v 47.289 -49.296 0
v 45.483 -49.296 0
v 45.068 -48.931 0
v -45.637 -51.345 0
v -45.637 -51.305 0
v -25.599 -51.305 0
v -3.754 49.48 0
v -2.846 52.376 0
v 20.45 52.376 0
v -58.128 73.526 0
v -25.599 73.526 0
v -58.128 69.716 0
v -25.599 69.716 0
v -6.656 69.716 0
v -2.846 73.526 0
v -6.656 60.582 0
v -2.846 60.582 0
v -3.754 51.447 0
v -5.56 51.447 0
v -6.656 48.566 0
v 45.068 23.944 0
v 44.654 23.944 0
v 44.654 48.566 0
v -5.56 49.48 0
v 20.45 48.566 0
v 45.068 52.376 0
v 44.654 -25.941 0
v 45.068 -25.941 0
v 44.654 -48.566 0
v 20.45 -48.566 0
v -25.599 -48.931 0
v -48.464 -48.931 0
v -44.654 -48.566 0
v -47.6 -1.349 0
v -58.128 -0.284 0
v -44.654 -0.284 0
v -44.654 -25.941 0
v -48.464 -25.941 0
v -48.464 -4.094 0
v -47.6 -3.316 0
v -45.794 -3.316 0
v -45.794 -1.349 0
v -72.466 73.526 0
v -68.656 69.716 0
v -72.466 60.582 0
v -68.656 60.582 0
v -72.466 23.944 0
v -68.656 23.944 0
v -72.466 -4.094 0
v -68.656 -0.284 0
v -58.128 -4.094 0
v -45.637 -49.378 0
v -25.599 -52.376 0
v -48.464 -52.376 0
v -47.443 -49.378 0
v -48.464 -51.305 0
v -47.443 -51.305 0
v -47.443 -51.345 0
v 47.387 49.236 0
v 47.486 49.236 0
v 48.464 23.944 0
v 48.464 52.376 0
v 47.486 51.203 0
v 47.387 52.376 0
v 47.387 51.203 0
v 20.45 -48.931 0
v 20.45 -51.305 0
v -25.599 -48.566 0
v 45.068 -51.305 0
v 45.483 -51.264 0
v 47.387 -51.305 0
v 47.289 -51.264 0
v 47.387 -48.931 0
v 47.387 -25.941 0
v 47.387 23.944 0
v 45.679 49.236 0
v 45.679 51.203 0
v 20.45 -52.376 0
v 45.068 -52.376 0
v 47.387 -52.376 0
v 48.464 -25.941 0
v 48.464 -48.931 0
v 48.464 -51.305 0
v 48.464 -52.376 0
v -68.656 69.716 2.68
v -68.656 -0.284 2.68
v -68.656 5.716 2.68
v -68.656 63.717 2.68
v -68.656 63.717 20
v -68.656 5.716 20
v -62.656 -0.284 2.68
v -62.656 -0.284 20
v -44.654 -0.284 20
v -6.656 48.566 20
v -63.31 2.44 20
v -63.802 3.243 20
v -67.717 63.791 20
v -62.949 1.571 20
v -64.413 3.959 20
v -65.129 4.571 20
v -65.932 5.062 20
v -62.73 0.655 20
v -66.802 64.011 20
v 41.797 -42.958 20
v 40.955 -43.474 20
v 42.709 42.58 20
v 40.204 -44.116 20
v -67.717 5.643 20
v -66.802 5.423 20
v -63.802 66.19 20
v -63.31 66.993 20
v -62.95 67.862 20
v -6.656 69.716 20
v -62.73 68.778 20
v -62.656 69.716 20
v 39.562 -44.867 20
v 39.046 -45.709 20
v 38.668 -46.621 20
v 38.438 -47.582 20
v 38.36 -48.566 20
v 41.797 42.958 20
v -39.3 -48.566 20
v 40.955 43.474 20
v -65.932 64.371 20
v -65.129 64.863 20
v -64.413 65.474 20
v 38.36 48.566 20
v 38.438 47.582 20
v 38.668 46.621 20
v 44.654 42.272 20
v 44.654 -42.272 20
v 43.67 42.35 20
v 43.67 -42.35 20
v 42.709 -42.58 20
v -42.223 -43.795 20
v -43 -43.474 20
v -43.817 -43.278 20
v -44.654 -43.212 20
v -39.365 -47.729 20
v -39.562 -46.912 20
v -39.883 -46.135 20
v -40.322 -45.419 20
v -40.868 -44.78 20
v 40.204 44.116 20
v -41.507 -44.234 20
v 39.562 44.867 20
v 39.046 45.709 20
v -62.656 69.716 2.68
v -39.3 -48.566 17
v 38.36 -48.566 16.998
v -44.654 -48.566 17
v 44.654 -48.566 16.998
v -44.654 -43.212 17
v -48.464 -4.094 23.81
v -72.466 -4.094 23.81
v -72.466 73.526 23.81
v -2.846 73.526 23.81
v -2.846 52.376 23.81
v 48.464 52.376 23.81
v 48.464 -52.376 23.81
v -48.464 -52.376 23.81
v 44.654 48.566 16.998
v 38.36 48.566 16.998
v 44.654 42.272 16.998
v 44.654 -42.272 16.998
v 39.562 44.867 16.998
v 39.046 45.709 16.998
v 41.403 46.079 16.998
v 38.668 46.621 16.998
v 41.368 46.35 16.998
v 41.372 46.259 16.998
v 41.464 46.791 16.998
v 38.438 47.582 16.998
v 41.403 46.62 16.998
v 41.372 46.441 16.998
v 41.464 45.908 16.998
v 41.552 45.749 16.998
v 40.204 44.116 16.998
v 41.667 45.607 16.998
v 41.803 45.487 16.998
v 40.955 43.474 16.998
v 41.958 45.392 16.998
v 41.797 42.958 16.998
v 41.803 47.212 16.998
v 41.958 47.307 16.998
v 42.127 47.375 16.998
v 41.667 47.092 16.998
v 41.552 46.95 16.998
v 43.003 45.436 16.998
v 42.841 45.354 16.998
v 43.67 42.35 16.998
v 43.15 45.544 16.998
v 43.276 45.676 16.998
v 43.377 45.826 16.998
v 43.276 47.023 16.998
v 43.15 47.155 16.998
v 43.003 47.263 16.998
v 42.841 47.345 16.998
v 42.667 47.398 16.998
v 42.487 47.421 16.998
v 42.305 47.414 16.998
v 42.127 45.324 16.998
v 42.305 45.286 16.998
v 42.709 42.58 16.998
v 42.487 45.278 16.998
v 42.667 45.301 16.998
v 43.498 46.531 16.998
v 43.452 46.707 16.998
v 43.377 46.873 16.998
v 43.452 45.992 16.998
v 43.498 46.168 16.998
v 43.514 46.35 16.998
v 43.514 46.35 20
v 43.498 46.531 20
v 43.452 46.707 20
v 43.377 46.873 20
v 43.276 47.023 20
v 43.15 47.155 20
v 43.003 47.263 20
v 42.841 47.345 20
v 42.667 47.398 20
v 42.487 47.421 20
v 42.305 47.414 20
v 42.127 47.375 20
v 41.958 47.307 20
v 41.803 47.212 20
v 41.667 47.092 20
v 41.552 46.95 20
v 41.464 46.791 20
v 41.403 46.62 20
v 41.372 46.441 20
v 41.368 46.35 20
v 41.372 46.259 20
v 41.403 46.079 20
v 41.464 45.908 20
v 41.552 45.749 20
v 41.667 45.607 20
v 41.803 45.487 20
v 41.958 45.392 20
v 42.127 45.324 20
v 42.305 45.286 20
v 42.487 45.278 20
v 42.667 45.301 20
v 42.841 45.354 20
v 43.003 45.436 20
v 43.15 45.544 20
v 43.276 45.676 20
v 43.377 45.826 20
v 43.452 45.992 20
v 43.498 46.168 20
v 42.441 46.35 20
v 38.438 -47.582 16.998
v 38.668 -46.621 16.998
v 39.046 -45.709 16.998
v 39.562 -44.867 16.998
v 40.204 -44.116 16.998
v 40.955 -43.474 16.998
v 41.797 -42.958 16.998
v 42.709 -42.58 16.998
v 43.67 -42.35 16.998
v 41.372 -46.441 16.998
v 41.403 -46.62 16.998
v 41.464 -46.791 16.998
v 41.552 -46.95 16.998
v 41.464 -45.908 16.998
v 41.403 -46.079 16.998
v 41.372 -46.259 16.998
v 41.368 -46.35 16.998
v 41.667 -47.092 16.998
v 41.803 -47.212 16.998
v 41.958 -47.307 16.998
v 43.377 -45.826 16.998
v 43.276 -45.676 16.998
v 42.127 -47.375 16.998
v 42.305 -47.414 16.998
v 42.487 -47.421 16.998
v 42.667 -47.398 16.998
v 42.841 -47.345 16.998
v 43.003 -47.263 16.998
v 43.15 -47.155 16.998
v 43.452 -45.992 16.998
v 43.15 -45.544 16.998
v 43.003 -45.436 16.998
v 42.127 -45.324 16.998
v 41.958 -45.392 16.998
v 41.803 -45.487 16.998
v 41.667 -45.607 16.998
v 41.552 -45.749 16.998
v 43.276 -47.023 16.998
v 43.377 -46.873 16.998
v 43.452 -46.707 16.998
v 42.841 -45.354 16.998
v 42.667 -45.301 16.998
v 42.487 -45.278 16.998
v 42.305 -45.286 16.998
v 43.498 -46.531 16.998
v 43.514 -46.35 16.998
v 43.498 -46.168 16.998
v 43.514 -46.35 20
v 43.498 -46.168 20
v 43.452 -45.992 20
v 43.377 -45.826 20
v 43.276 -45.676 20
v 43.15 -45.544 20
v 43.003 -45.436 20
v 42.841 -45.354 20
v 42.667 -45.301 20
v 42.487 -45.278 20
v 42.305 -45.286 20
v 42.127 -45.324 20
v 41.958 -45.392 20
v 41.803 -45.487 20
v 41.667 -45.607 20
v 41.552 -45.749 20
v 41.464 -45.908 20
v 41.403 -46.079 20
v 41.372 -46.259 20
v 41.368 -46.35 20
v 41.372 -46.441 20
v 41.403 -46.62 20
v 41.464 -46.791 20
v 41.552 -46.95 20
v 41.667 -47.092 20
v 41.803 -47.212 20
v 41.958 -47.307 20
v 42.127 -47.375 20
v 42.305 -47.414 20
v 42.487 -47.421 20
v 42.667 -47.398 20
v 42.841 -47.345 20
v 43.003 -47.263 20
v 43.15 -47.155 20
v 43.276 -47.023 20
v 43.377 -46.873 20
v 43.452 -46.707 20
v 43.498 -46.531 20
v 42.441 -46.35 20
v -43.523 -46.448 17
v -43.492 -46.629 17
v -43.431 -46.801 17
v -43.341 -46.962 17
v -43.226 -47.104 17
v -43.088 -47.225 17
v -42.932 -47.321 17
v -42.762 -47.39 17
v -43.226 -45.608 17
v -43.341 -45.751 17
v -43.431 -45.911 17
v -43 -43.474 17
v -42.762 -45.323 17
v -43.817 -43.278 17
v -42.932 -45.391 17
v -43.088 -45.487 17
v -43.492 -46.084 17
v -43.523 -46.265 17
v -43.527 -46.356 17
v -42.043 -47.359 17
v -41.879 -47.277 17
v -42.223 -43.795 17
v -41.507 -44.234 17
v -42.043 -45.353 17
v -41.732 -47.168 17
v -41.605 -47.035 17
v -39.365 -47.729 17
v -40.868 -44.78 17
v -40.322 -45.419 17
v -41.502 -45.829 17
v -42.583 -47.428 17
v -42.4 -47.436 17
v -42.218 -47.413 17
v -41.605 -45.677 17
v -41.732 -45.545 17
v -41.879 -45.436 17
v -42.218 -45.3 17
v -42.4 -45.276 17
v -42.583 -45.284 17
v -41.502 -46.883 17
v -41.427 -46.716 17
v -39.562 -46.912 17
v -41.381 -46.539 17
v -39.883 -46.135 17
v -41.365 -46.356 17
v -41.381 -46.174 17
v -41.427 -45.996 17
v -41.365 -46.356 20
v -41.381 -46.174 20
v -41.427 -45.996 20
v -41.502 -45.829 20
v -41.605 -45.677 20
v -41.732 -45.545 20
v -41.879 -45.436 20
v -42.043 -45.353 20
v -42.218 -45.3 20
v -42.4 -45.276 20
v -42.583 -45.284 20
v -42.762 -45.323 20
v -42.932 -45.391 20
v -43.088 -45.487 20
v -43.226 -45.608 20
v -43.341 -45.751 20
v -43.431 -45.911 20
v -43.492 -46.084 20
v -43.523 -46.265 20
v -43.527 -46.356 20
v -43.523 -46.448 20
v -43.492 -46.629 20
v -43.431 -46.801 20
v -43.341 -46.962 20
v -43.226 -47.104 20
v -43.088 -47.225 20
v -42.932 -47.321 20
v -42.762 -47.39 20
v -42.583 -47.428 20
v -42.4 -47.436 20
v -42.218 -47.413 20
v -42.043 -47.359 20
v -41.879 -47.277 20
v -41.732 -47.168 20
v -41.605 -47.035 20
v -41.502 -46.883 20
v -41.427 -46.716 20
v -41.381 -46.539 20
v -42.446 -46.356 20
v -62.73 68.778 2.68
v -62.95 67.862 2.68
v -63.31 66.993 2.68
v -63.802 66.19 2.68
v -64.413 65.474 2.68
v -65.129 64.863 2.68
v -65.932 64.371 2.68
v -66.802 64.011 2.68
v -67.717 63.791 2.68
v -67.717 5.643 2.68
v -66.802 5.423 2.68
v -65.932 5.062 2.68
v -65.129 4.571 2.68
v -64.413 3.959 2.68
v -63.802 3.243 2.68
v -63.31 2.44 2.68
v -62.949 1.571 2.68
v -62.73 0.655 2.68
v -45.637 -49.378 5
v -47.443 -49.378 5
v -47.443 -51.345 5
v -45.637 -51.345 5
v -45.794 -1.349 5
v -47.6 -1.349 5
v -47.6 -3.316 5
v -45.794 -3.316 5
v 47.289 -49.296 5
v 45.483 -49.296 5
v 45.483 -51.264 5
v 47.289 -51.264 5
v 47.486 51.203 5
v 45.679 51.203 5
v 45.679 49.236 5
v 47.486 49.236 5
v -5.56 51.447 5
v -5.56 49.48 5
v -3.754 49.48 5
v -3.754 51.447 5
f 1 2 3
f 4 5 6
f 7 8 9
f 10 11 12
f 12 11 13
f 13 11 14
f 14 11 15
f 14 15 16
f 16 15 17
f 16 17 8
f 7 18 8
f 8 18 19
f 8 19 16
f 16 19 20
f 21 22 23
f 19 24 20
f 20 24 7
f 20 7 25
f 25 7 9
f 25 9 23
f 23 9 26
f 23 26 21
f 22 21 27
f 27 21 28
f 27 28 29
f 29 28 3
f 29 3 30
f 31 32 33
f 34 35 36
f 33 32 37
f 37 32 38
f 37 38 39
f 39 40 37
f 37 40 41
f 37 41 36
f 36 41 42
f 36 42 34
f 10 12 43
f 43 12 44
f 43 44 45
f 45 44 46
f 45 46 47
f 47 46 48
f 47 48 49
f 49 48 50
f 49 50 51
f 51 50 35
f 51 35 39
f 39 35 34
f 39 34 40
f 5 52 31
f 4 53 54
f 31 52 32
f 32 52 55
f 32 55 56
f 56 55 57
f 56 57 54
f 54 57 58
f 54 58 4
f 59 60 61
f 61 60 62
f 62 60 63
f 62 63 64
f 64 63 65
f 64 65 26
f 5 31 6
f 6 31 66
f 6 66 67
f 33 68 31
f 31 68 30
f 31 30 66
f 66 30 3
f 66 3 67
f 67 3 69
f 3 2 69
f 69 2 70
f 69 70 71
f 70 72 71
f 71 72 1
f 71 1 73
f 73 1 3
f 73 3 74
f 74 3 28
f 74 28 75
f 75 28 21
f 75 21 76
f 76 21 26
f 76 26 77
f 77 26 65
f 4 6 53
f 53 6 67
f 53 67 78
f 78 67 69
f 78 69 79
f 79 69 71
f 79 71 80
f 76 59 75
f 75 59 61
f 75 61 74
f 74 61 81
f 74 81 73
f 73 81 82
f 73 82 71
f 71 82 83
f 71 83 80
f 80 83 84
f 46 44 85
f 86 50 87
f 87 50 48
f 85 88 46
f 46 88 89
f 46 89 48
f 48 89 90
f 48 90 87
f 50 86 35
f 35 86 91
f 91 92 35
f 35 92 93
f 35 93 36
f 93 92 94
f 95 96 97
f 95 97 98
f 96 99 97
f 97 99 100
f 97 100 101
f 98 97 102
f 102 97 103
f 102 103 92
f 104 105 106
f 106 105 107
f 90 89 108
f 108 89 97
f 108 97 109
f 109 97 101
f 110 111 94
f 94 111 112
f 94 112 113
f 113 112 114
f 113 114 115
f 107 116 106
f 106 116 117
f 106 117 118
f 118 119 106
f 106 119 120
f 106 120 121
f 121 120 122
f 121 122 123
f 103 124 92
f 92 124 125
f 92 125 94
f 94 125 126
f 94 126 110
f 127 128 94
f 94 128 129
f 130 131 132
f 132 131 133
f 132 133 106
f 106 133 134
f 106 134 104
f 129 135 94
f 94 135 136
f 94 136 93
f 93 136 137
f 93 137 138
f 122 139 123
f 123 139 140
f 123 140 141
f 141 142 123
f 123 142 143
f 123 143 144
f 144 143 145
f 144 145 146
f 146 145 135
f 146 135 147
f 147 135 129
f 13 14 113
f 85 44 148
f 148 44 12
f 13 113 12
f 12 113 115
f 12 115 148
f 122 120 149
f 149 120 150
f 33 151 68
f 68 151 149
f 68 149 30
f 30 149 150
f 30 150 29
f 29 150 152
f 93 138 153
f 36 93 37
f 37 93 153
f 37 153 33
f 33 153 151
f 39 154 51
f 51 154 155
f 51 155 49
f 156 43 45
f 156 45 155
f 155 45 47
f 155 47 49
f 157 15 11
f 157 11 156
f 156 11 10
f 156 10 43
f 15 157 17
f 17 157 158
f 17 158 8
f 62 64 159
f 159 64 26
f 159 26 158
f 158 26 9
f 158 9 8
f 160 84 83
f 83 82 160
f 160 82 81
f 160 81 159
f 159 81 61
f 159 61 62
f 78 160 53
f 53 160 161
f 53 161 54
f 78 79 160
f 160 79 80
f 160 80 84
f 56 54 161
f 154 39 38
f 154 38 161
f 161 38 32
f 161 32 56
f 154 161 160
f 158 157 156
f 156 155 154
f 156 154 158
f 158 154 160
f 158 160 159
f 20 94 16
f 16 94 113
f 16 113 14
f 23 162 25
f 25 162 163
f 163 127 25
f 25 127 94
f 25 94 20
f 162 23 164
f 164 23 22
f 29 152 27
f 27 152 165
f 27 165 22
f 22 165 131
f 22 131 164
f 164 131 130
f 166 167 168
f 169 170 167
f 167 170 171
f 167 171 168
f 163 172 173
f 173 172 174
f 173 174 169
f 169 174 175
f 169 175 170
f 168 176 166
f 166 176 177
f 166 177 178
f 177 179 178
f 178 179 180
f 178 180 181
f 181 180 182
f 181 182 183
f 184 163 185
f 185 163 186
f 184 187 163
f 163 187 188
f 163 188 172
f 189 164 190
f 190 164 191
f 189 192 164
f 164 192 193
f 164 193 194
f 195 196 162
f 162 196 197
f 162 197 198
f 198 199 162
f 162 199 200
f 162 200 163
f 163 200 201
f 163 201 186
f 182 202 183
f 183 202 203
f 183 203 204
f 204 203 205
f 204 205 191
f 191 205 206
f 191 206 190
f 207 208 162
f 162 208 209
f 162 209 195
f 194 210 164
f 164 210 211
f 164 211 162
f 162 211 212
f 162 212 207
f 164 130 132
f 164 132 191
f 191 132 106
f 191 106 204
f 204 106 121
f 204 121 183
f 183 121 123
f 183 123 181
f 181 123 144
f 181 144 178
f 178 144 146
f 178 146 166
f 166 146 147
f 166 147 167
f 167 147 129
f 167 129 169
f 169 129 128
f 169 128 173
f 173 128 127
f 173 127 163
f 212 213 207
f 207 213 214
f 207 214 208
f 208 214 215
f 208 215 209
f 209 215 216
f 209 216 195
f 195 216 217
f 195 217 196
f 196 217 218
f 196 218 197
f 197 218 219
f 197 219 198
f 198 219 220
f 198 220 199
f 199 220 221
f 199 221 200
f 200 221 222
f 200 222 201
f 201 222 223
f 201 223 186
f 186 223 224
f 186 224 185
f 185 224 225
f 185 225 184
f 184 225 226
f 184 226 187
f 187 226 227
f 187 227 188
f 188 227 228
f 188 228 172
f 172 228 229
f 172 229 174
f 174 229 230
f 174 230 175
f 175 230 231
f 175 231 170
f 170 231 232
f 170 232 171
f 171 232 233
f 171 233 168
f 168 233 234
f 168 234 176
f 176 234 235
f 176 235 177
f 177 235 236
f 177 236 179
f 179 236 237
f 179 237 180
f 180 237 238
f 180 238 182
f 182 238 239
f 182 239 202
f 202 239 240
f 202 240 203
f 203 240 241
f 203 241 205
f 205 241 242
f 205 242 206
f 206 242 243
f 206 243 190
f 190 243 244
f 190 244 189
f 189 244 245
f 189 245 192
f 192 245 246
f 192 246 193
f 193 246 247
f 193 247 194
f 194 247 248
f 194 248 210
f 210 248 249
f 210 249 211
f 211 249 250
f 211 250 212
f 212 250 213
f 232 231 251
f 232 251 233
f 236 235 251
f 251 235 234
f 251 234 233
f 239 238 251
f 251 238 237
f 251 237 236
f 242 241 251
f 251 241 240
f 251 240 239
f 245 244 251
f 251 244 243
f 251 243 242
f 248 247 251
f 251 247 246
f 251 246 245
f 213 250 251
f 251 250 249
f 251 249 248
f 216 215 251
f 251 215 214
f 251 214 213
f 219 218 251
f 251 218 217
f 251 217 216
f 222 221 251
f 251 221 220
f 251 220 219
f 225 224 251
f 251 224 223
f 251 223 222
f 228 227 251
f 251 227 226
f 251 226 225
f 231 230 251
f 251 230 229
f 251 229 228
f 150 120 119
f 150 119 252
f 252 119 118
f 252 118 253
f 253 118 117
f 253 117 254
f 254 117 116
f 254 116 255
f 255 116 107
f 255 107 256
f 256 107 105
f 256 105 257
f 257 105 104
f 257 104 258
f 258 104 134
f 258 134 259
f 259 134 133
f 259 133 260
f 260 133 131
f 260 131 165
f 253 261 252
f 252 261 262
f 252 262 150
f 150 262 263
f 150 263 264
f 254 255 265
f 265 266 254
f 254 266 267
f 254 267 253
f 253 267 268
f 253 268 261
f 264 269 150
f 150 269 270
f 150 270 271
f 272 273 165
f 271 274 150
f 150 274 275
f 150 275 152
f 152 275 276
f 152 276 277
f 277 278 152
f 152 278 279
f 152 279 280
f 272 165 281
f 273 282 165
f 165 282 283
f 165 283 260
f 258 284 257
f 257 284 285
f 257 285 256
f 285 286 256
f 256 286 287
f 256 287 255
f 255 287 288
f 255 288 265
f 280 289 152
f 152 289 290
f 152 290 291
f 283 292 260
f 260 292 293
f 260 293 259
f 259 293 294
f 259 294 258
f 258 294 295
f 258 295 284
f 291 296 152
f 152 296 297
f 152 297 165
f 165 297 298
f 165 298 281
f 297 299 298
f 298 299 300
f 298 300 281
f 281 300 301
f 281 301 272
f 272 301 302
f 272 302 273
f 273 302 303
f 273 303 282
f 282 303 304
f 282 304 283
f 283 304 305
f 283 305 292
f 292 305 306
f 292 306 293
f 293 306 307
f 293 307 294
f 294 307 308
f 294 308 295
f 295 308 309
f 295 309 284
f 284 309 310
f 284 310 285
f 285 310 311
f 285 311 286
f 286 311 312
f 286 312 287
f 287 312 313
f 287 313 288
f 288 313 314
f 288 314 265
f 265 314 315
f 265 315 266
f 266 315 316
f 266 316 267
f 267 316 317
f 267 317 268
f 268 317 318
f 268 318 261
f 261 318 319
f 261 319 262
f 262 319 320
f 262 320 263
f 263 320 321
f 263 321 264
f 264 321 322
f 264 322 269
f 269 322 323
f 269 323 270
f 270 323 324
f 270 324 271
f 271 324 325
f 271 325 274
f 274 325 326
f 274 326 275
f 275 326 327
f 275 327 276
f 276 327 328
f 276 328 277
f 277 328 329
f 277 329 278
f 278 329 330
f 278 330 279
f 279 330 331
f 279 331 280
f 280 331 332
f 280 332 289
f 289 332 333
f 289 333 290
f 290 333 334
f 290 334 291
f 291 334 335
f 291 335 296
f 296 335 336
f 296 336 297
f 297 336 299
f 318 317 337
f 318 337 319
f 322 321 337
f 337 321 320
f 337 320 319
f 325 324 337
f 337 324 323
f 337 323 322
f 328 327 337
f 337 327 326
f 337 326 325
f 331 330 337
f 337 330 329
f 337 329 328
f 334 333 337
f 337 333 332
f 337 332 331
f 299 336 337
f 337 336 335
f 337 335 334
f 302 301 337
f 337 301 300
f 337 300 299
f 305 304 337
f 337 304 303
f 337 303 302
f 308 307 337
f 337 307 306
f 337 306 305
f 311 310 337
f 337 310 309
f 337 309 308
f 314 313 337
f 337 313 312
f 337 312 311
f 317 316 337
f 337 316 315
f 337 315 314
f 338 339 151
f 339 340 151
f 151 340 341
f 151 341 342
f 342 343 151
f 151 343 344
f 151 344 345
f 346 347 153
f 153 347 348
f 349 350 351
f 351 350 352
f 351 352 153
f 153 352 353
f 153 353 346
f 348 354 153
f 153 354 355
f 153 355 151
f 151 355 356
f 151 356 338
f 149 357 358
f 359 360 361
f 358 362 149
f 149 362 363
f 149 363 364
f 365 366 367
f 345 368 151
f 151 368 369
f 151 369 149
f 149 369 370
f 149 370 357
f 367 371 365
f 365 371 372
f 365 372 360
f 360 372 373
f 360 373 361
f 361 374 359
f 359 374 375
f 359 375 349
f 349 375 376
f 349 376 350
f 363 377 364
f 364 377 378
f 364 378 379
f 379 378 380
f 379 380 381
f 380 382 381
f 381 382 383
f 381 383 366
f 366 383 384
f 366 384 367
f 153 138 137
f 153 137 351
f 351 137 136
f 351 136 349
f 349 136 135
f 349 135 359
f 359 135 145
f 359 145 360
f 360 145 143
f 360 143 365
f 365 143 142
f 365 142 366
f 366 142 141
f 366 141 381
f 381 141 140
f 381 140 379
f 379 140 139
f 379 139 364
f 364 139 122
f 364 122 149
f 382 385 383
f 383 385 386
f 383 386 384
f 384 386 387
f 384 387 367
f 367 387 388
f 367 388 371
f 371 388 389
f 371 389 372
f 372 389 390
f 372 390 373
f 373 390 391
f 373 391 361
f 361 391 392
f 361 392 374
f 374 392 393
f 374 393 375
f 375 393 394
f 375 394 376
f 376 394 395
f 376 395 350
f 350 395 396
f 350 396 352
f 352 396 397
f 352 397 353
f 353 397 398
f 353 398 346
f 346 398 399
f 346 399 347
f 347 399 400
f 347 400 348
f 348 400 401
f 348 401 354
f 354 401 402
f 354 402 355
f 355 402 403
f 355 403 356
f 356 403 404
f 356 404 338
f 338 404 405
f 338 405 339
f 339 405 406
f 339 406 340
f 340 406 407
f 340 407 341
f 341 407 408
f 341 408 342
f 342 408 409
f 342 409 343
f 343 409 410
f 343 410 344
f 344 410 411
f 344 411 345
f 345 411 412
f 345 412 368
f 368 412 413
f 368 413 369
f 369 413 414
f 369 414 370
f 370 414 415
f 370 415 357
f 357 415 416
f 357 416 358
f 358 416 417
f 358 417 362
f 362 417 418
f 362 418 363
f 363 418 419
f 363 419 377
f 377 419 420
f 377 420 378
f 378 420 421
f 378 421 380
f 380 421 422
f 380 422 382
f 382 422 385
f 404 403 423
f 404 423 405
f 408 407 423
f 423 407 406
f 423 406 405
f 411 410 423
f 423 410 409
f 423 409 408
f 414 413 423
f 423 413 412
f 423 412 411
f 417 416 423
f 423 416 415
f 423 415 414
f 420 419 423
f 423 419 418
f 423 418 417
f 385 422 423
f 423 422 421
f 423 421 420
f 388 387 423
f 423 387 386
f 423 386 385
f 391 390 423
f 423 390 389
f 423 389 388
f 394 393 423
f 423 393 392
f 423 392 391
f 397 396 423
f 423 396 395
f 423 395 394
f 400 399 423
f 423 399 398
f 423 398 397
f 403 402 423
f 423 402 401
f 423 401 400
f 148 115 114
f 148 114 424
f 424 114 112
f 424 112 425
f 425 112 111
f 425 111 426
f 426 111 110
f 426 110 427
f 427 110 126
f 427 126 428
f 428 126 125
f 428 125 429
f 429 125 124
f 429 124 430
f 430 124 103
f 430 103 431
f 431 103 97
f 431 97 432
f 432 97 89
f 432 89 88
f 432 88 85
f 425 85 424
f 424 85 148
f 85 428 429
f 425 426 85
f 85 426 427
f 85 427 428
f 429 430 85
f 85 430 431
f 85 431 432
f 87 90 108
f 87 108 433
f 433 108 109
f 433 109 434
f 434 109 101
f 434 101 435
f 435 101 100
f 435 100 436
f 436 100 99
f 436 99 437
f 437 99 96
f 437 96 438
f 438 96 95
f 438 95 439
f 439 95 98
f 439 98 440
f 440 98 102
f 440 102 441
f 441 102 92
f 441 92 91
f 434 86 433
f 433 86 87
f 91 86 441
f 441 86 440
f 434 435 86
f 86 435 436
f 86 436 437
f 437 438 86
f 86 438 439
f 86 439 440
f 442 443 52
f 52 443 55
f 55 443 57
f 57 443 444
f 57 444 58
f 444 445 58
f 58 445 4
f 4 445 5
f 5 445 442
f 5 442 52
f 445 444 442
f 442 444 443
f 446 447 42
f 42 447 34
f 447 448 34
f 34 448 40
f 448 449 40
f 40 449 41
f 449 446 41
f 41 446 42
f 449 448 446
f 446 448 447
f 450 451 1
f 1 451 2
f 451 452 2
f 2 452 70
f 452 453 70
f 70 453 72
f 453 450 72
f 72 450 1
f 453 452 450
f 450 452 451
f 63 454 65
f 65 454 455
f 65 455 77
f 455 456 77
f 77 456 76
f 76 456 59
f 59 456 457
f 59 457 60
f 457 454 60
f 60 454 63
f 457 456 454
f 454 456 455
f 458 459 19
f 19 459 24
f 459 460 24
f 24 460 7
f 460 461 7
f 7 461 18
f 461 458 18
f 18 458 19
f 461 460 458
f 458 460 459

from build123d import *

# Parameters (mm, degrees)
BOSS_EXTRUDE1_DEPTH      = 20
BOSS_EXTRUDE1_DEPTH_BACK = 0.0001
SHELL3_T                 = 3.81
SKETCH9_R                = 1.072598704
BOSS_EXTRUDE3_DEPTH      = 3.001739429
SKETCH19_R               = 1.080792188
BOSS_EXTRUDE4_DEPTH      = 3
BOSS_EXTRUDE5_DEPTH      = 17.32
SKETCH22_W               = 1.806317066
SKETCH22_H               = 1.967276013
SKETCH22_W_2             = 1.806317067
CUT_EXTRUDE1_DEPTH       = 5


with BuildPart() as part:
    # Sketch2 → Boss-Extrude1 (new, two sides: drawn at the far end of the back side and taken through both)
    with BuildSketch(Plane.XY.offset(-BOSS_EXTRUDE1_DEPTH_BACK)):
        Polygon((-6.655720012, 48.566419982), (44.654279988, 48.566419982), (44.654279988, -48.566419982), (-44.654279988, -48.566419982), (-44.654279988, -0.283580018), (-68.655720012, -0.283580018), (-68.655720012, 69.716419982), (-6.655720012, 69.716419982), align=None)
    extrude(amount=BOSS_EXTRUDE1_DEPTH + BOSS_EXTRUDE1_DEPTH_BACK)

    # Shell3
    shell3_openings = [part.faces().sort_by_distance(p)[0] for p in [
        (-10.378060189, 9.486636378, -0.0001),
    ]]
    offset(amount=SHELL3_T, openings=shell3_openings, kind=Kind.INTERSECTION)

    # Sketch9 → Boss-Extrude3 (add)
    with BuildSketch(Plane(origin=(0, 0, 20), x_dir=(-1, 0, 0), z_dir=(0, 0, -1))):
        with BuildLine():
            Line((-44.654279988, 48.566419982), (-38.360252923, 48.566419982))
            ThreePointArc((-38.360252923, 48.566419982), (-40.203730769, 44.115870764), (-44.654279988, 42.272392917))
            Line((-44.654279988, 42.272392917), (-44.654279988, 48.566419982))
        make_face()
        with Locations((-42.441033376, 46.349593762)):
            Circle(SKETCH9_R, mode=Mode.SUBTRACT)
    boss_extrude3 = extrude(amount=BOSS_EXTRUDE3_DEPTH)

    # Mirror1: Boss-Extrude3 across plane
    add(boss_extrude3.mirror(Plane.ZX))

    # Sketch19 → Boss-Extrude4 (add)
    with BuildSketch(Plane(origin=(0, 0, 20), x_dir=(-1, 0, 0), z_dir=(0, 0, -1))):
        with BuildLine():
            Line((39.29950568, -48.566419982), (44.654279988, -48.566419982))
            Line((44.654279988, -48.566419982), (44.654279988, -43.211645674))
            ThreePointArc((44.654279988, -43.211645674), (40.867882763, -44.780022757), (39.29950568, -48.566419982))
        make_face()
        with Locations((42.445754047, -46.356290661)):
            Circle(SKETCH19_R, mode=Mode.SUBTRACT)
    extrude(amount=BOSS_EXTRUDE4_DEPTH)

    # Sketch20 → Boss-Extrude5 (add)
    with BuildSketch(Plane(origin=(0, 0, 20), x_dir=(-1, 0, 0), z_dir=(0, 0, -1))):
        with BuildLine():
            Line((68.655720012, 69.716419982), (68.655720012, 63.716926528))
            ThreePointArc((68.655720012, 63.716926528), (64.413437506, 65.474137477), (62.656226557, 69.716419982))
            Line((62.656226557, 69.716419982), (68.655720012, 69.716419982))
        make_face()
        with BuildLine():
            Line((68.655720012, 5.716419982), (68.655720012, -0.283580018))
            Line((68.655720012, -0.283580018), (62.655720012, -0.283580018))
            ThreePointArc((62.655720012, -0.283580018), (64.413079325, 3.959060669), (68.655720012, 5.716419982))
        make_face()
    extrude(amount=BOSS_EXTRUDE5_DEPTH)

    # Sketch22 → Cut-Extrude1 (cut)
    with BuildSketch(Plane(origin=(0, 0, -0.0001), x_dir=(-1, 0, 0), z_dir=(0, 0, -1))):
        with Locations((46.539737407, -50.361848815)):
            Rectangle(SKETCH22_W, SKETCH22_H)
        with Locations((46.696837753, -2.332274853)):
            Rectangle(SKETCH22_W, SKETCH22_H)
        with Locations((-46.38572761, -50.279884702)):
            Rectangle(SKETCH22_W_2, SKETCH22_H)
        with Locations((-46.582637328, 50.219582477)):
            Rectangle(SKETCH22_W_2, SKETCH22_H)
        with Locations((4.657343006, 50.463554198)):
            Rectangle(SKETCH22_W_2, SKETCH22_H)
    extrude(amount=-CUT_EXTRUDE1_DEPTH, mode=Mode.SUBTRACT)


solid = part.part
